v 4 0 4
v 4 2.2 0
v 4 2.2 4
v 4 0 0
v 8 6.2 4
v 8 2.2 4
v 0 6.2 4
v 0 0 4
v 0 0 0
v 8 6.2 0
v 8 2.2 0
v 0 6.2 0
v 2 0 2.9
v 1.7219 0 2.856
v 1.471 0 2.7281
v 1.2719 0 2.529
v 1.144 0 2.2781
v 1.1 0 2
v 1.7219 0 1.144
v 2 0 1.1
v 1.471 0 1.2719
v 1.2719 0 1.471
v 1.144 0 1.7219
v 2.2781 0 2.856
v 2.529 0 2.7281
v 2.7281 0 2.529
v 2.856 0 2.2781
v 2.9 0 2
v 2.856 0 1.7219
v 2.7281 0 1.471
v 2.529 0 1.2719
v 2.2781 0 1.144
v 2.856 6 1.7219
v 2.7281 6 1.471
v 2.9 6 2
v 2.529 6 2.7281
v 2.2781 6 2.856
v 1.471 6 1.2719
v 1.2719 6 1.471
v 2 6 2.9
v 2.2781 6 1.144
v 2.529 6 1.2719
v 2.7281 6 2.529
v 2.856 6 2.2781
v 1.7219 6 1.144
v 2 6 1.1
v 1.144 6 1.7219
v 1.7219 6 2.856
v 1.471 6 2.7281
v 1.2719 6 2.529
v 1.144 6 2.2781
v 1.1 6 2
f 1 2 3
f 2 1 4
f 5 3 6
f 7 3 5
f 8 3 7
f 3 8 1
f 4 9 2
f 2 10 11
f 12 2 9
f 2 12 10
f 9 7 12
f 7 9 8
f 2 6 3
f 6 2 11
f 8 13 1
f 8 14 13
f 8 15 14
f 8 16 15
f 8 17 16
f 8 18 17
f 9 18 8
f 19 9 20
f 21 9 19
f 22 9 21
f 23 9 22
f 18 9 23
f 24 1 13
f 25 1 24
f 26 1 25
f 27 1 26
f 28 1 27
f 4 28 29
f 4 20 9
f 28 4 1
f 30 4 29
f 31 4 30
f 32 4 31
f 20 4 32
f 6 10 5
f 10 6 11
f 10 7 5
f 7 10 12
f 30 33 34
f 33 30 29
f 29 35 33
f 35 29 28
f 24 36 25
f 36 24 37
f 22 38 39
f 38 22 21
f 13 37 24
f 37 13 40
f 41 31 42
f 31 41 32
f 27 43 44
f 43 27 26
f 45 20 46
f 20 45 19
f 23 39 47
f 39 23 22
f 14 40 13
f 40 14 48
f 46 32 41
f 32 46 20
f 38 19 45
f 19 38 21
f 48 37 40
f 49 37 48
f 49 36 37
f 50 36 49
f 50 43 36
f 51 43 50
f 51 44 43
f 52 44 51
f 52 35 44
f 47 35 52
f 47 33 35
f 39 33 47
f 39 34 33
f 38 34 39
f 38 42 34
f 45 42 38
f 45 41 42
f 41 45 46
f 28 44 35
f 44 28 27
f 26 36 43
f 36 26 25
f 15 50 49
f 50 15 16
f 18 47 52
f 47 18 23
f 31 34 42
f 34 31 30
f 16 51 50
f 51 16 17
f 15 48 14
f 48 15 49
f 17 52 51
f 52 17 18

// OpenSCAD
// SPDX-FileCopyrightText: 2024 Rafael G. Martins <rafael@rafaelmartins.eng.br>
// SPDX-License-Identifier: CERN-OHL-S-2.0

difference() {
    union() {
        cube([4, 2.2, 4]);
        translate([0, 2.2, 0])
            cube([8, 4, 4]);
    }

    translate([2, 0, 2])
        rotate([-90, 0, 0])
            cylinder(h=6, d=1.8, $fn=20);
}
